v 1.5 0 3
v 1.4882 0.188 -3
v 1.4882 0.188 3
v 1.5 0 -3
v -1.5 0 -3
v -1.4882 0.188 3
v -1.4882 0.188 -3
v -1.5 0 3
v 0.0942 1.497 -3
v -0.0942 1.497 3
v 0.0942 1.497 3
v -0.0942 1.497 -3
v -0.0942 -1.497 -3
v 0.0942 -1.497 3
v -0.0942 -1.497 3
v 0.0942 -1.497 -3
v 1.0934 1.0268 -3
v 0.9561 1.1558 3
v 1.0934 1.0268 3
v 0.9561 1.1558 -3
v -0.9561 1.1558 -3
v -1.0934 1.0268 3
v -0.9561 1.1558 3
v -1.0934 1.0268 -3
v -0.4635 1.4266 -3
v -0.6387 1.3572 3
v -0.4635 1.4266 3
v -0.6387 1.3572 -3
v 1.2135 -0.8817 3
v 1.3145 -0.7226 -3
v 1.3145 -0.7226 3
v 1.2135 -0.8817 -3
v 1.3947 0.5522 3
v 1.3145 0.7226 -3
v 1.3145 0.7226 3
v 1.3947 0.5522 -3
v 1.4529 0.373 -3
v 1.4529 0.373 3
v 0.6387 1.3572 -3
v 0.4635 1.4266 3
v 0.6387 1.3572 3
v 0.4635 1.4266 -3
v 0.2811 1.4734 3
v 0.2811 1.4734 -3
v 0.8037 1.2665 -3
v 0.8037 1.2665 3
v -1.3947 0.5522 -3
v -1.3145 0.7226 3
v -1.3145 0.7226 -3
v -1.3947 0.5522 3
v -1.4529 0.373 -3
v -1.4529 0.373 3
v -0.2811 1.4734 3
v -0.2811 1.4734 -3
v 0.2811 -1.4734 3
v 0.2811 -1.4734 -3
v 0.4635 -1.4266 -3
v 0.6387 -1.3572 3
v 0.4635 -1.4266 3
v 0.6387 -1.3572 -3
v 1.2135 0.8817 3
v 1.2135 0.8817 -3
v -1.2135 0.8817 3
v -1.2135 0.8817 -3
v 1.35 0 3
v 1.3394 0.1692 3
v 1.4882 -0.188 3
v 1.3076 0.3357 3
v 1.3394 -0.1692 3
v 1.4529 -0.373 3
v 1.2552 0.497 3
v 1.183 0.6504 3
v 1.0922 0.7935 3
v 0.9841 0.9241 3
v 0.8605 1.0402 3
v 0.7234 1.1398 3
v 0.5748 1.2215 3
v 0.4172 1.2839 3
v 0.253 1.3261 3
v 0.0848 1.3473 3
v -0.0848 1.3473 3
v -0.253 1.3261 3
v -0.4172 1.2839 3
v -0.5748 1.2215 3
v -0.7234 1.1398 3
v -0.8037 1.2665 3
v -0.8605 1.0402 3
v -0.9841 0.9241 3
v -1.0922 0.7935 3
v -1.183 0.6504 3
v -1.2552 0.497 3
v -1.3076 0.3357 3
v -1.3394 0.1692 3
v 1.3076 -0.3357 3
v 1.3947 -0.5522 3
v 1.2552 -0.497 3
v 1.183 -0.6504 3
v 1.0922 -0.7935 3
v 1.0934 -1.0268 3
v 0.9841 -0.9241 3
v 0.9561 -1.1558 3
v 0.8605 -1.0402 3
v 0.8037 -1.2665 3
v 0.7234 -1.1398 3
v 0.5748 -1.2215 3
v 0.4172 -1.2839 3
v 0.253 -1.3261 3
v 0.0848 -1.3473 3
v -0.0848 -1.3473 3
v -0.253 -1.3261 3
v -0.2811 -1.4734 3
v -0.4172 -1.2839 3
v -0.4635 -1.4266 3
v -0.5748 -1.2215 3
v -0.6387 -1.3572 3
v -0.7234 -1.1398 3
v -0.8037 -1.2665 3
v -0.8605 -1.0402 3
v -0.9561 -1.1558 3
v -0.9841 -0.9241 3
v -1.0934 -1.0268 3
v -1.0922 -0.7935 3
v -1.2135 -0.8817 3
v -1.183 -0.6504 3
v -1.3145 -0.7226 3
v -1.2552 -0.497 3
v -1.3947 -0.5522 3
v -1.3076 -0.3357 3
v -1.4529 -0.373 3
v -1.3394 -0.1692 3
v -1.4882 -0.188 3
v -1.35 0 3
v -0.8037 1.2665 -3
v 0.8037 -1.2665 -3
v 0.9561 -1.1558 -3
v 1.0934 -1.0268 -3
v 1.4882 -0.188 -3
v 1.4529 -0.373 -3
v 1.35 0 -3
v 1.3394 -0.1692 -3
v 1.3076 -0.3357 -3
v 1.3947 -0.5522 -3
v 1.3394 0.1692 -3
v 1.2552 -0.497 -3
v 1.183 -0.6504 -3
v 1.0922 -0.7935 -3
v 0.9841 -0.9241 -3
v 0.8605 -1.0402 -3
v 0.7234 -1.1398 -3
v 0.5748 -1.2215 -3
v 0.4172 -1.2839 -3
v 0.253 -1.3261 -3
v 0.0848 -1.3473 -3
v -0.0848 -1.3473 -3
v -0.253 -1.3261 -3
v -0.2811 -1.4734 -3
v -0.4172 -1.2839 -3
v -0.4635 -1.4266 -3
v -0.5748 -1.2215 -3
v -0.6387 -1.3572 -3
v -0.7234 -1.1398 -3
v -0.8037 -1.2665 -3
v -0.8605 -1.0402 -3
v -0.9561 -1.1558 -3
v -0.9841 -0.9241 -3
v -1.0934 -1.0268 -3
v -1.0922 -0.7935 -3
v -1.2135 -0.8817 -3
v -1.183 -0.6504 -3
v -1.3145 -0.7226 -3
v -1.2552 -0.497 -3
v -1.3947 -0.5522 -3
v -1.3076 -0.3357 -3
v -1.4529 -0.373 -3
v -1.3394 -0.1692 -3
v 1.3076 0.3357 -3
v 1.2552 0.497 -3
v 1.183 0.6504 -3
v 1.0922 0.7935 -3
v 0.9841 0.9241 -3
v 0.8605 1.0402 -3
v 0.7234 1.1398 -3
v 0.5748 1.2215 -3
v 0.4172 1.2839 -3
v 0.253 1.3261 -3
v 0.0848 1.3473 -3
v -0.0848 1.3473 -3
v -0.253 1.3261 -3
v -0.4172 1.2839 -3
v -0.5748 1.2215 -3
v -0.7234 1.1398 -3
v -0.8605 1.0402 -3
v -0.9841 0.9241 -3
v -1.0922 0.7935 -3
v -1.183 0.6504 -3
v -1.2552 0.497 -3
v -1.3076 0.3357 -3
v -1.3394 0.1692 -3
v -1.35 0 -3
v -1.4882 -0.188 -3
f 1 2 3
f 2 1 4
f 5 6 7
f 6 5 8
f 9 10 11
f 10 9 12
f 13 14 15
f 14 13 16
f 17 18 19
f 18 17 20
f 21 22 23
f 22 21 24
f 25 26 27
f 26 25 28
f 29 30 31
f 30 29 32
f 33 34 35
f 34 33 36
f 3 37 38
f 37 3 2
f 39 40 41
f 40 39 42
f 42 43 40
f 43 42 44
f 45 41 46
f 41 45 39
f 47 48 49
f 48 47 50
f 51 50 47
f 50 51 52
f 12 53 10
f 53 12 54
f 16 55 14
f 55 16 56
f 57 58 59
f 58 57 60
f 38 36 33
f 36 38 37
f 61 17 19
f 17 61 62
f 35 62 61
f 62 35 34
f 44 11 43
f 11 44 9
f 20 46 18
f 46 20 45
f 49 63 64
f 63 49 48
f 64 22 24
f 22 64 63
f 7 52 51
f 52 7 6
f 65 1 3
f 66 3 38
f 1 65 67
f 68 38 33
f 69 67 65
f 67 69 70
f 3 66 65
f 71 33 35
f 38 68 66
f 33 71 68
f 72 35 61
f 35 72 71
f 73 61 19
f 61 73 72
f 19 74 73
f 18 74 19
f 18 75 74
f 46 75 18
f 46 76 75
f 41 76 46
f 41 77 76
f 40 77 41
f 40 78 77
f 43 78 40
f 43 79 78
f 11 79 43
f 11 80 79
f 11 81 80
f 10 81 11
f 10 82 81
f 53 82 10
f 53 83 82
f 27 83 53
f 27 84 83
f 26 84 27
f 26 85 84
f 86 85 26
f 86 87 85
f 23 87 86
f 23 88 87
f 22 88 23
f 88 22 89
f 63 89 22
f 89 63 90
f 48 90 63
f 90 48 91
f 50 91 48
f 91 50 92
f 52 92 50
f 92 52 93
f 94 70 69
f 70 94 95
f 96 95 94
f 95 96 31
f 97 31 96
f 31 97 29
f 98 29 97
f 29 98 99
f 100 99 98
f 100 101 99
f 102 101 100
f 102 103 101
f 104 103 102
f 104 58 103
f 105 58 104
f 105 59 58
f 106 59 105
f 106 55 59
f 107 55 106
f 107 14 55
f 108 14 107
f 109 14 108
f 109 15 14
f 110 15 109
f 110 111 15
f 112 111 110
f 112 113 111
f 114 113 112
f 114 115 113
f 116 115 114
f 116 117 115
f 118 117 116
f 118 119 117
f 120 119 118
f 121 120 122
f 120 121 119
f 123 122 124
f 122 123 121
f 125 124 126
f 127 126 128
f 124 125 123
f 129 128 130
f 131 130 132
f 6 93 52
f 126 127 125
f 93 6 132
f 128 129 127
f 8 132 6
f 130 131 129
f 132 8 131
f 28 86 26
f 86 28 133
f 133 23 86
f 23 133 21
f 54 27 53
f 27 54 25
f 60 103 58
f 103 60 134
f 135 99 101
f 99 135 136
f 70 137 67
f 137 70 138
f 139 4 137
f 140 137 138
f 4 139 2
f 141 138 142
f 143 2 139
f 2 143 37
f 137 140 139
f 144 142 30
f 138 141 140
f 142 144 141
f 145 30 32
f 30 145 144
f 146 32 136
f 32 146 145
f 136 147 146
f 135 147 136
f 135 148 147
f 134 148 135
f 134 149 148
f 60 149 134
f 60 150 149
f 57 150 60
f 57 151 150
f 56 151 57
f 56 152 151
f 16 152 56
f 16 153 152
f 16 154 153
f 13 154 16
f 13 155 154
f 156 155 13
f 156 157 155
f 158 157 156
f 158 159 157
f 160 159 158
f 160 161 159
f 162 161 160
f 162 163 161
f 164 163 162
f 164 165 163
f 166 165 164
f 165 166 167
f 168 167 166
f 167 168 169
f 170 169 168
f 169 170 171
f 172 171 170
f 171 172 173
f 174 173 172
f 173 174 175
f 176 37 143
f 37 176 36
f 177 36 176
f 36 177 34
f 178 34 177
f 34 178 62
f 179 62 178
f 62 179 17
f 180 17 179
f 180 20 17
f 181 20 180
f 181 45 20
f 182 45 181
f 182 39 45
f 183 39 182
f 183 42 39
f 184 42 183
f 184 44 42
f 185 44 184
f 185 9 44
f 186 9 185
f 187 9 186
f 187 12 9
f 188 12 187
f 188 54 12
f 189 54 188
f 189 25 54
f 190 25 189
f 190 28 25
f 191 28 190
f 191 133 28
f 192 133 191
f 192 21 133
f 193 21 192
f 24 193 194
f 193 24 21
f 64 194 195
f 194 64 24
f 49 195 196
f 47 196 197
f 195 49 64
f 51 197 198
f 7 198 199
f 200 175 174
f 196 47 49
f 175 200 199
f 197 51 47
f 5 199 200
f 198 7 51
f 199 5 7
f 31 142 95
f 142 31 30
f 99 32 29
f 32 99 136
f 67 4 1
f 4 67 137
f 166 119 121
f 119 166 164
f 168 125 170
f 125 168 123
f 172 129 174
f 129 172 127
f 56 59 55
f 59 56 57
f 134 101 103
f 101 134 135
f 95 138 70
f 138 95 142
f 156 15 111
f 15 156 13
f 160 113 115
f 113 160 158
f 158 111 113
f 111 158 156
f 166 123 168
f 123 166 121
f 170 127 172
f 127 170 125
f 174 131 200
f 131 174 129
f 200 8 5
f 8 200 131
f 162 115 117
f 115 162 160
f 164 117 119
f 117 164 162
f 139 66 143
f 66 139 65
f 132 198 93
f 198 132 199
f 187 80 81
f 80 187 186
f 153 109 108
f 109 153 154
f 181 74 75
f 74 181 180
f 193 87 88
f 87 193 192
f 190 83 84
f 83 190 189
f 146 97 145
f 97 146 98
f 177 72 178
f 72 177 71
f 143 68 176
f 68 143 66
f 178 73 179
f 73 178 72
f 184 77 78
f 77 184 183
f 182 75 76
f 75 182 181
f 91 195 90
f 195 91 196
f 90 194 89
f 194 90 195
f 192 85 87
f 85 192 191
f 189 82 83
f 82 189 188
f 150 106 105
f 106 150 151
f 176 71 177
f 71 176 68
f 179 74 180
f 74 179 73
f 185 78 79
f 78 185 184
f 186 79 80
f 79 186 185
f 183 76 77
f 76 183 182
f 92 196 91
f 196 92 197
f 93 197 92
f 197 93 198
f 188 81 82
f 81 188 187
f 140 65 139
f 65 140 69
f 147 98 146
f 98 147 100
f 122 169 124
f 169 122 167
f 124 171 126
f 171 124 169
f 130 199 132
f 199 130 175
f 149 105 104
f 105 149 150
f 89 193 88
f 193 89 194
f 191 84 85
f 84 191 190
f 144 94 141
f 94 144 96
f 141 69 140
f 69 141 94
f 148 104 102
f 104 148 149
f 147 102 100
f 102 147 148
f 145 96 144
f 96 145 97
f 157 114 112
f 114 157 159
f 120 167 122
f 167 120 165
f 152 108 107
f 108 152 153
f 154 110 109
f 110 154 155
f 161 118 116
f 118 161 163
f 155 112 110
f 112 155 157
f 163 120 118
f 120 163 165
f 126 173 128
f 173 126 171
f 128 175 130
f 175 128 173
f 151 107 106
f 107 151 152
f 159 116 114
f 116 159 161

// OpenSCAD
$fn = 50;


difference() {
	union() {
		translate(v = [0, 0, -3.0000000000]) {
			cylinder(h = 6, r = 1.5000000000);
		}
	}
	union() {
		translate(v = [0, 0, -100.0000000000]) {
			cylinder(h = 200, r = 1.3500000000);
		}
	}
}
